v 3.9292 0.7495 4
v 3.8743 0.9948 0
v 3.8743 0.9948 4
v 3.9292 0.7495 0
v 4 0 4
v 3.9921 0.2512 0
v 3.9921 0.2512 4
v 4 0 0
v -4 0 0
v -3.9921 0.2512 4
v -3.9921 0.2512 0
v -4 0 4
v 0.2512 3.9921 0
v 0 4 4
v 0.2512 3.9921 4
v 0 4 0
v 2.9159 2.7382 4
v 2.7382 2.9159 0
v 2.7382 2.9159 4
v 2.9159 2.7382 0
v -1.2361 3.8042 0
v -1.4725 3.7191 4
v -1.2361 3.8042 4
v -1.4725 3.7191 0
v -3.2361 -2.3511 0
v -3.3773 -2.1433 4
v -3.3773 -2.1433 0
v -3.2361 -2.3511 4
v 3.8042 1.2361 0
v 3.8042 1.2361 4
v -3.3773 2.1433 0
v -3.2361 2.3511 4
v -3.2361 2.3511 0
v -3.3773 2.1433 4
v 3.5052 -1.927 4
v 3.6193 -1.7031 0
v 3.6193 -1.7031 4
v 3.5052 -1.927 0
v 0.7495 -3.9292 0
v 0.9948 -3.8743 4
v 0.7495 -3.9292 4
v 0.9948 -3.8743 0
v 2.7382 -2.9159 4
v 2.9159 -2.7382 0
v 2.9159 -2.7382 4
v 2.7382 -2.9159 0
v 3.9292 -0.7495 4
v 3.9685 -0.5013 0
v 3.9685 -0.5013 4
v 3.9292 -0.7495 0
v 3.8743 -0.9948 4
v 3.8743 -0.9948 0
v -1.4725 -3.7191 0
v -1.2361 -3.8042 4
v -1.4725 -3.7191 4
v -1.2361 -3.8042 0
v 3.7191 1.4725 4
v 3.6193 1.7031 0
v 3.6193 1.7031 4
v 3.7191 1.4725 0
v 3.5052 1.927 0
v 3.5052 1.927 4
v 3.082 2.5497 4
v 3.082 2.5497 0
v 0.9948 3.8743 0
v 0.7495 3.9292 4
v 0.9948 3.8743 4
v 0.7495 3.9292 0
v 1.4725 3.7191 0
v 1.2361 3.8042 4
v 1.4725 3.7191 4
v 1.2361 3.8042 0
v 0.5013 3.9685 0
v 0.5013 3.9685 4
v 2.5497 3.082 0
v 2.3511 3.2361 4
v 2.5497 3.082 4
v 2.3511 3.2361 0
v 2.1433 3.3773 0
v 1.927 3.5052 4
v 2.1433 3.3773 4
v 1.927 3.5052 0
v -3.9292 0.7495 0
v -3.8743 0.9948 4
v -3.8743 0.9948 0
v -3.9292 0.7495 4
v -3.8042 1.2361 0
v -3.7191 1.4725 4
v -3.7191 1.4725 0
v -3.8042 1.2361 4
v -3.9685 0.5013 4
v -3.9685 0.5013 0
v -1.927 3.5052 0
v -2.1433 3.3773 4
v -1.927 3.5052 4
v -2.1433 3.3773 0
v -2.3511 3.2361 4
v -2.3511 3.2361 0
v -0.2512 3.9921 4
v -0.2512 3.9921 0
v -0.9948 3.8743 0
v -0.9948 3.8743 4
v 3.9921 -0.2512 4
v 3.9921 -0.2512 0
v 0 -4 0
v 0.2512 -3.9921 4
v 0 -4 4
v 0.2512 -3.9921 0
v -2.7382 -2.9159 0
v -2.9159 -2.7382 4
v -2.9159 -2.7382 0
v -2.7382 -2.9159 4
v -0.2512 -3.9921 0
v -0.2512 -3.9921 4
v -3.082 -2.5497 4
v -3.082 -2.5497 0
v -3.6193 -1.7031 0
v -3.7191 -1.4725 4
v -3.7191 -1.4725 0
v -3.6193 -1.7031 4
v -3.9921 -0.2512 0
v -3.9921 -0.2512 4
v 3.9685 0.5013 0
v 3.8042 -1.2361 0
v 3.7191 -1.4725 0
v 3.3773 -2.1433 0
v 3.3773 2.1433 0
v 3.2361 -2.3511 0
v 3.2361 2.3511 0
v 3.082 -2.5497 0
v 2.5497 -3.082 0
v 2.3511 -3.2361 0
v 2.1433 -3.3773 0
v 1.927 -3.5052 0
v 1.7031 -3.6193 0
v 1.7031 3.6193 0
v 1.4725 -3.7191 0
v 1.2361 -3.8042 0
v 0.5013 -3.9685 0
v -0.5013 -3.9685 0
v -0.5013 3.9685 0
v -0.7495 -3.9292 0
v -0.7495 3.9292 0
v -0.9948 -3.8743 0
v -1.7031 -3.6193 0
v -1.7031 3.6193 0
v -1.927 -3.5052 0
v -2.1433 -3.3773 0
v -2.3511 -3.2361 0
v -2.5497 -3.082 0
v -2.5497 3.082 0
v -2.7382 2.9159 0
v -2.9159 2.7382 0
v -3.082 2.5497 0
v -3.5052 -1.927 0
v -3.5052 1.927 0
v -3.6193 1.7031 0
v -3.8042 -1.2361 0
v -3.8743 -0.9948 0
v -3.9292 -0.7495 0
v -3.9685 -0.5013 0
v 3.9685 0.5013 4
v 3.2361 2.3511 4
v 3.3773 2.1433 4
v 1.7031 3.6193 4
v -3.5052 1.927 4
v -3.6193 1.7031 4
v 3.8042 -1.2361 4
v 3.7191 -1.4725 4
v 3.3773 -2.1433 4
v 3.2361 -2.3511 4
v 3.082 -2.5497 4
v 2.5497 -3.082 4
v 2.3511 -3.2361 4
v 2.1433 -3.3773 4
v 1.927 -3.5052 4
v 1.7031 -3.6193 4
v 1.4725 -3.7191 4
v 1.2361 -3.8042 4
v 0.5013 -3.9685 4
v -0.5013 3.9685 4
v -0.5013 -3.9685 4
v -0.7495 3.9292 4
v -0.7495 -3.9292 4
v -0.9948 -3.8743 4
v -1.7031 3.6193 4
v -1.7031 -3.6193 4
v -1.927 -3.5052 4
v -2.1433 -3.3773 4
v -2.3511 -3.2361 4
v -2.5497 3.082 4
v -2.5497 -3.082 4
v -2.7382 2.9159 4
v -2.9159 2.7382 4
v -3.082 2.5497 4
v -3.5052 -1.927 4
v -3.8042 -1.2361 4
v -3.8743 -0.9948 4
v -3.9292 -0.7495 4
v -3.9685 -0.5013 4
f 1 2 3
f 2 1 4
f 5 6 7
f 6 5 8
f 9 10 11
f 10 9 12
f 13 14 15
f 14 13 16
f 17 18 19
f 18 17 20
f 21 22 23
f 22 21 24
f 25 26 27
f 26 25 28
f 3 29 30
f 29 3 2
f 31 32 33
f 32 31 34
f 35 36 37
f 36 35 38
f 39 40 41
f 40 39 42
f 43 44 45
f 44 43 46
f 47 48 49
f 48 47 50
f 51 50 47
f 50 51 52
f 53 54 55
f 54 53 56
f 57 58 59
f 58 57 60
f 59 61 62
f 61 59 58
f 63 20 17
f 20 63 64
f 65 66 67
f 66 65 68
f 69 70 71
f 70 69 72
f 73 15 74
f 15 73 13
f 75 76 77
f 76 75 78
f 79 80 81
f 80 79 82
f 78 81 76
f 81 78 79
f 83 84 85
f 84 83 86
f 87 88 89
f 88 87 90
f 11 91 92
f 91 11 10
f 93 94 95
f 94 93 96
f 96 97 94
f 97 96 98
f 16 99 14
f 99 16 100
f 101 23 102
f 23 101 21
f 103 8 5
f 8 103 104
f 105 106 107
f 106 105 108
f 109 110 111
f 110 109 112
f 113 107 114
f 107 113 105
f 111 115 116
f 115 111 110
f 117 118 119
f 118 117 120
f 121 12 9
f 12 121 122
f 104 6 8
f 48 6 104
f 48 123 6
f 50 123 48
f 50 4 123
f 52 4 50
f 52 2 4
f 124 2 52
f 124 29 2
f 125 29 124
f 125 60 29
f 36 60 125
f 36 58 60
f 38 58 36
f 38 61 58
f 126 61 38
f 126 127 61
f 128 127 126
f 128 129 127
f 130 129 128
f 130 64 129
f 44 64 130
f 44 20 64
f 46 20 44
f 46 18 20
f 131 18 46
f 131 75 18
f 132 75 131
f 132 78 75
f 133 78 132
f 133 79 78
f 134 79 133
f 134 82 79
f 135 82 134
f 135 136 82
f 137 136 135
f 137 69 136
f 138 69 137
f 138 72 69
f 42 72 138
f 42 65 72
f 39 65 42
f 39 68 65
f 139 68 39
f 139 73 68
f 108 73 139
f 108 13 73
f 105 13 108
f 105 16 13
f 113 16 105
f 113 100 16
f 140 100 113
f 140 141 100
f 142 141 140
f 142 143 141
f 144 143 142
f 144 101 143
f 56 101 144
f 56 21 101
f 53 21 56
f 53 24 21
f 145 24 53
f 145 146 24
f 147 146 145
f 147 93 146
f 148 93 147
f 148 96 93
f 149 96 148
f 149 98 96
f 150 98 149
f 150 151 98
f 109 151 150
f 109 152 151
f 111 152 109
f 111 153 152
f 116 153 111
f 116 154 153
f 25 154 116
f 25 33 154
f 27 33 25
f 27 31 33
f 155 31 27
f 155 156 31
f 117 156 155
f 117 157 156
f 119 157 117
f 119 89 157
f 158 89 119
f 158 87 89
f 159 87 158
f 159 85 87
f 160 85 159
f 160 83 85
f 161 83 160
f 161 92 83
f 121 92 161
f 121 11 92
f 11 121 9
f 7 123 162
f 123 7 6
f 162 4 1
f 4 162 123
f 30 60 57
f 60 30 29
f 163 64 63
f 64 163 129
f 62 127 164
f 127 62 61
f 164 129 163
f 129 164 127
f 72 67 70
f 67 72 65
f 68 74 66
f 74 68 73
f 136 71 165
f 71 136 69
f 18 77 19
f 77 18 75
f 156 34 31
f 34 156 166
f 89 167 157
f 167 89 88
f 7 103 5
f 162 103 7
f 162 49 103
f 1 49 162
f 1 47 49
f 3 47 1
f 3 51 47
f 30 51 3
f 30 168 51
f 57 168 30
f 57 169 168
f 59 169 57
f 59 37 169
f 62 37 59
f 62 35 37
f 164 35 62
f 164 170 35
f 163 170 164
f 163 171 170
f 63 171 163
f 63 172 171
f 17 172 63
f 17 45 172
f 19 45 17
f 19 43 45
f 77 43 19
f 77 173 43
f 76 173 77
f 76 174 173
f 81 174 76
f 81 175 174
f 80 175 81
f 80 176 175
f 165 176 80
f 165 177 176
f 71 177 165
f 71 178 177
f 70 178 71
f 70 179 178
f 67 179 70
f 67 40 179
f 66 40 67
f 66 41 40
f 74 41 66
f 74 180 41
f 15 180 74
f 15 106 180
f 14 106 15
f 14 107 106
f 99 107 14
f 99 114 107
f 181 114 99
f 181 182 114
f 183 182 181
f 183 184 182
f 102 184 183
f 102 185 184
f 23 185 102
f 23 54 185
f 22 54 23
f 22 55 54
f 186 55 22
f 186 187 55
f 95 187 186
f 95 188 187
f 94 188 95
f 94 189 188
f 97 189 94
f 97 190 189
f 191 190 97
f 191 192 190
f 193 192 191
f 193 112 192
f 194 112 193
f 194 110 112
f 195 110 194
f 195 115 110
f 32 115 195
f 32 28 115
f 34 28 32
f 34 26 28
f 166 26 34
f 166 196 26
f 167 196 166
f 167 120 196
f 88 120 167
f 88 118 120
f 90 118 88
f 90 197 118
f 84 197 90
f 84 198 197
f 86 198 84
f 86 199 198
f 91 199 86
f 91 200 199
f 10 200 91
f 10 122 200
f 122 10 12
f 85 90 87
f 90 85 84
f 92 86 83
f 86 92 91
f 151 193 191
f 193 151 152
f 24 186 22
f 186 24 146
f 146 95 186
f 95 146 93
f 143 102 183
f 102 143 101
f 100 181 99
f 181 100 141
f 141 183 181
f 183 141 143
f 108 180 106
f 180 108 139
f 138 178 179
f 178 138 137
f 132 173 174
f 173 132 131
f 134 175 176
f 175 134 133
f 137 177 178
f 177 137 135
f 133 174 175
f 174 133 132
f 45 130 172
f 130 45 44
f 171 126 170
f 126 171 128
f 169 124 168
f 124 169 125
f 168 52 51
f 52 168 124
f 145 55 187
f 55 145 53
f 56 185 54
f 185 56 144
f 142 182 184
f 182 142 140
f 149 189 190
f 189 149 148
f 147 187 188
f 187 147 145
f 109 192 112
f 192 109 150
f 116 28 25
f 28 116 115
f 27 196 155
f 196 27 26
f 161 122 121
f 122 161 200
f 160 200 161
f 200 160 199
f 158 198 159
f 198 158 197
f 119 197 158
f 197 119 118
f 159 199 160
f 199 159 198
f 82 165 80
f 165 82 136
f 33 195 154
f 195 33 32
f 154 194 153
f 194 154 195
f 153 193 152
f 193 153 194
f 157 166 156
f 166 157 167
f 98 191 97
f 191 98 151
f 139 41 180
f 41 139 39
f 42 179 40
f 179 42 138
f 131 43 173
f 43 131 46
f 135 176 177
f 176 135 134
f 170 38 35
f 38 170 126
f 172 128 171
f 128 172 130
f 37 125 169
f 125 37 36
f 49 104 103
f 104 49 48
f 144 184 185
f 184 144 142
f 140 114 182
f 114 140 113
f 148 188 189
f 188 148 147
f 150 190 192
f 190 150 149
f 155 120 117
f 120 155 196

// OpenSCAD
$fn=100;


intersection(){
    translate([0,0,0]) #rotate([90,0,0]) cylinder(h=10, d=20, center=true);
    cylinder(h=4, d=8);
}
